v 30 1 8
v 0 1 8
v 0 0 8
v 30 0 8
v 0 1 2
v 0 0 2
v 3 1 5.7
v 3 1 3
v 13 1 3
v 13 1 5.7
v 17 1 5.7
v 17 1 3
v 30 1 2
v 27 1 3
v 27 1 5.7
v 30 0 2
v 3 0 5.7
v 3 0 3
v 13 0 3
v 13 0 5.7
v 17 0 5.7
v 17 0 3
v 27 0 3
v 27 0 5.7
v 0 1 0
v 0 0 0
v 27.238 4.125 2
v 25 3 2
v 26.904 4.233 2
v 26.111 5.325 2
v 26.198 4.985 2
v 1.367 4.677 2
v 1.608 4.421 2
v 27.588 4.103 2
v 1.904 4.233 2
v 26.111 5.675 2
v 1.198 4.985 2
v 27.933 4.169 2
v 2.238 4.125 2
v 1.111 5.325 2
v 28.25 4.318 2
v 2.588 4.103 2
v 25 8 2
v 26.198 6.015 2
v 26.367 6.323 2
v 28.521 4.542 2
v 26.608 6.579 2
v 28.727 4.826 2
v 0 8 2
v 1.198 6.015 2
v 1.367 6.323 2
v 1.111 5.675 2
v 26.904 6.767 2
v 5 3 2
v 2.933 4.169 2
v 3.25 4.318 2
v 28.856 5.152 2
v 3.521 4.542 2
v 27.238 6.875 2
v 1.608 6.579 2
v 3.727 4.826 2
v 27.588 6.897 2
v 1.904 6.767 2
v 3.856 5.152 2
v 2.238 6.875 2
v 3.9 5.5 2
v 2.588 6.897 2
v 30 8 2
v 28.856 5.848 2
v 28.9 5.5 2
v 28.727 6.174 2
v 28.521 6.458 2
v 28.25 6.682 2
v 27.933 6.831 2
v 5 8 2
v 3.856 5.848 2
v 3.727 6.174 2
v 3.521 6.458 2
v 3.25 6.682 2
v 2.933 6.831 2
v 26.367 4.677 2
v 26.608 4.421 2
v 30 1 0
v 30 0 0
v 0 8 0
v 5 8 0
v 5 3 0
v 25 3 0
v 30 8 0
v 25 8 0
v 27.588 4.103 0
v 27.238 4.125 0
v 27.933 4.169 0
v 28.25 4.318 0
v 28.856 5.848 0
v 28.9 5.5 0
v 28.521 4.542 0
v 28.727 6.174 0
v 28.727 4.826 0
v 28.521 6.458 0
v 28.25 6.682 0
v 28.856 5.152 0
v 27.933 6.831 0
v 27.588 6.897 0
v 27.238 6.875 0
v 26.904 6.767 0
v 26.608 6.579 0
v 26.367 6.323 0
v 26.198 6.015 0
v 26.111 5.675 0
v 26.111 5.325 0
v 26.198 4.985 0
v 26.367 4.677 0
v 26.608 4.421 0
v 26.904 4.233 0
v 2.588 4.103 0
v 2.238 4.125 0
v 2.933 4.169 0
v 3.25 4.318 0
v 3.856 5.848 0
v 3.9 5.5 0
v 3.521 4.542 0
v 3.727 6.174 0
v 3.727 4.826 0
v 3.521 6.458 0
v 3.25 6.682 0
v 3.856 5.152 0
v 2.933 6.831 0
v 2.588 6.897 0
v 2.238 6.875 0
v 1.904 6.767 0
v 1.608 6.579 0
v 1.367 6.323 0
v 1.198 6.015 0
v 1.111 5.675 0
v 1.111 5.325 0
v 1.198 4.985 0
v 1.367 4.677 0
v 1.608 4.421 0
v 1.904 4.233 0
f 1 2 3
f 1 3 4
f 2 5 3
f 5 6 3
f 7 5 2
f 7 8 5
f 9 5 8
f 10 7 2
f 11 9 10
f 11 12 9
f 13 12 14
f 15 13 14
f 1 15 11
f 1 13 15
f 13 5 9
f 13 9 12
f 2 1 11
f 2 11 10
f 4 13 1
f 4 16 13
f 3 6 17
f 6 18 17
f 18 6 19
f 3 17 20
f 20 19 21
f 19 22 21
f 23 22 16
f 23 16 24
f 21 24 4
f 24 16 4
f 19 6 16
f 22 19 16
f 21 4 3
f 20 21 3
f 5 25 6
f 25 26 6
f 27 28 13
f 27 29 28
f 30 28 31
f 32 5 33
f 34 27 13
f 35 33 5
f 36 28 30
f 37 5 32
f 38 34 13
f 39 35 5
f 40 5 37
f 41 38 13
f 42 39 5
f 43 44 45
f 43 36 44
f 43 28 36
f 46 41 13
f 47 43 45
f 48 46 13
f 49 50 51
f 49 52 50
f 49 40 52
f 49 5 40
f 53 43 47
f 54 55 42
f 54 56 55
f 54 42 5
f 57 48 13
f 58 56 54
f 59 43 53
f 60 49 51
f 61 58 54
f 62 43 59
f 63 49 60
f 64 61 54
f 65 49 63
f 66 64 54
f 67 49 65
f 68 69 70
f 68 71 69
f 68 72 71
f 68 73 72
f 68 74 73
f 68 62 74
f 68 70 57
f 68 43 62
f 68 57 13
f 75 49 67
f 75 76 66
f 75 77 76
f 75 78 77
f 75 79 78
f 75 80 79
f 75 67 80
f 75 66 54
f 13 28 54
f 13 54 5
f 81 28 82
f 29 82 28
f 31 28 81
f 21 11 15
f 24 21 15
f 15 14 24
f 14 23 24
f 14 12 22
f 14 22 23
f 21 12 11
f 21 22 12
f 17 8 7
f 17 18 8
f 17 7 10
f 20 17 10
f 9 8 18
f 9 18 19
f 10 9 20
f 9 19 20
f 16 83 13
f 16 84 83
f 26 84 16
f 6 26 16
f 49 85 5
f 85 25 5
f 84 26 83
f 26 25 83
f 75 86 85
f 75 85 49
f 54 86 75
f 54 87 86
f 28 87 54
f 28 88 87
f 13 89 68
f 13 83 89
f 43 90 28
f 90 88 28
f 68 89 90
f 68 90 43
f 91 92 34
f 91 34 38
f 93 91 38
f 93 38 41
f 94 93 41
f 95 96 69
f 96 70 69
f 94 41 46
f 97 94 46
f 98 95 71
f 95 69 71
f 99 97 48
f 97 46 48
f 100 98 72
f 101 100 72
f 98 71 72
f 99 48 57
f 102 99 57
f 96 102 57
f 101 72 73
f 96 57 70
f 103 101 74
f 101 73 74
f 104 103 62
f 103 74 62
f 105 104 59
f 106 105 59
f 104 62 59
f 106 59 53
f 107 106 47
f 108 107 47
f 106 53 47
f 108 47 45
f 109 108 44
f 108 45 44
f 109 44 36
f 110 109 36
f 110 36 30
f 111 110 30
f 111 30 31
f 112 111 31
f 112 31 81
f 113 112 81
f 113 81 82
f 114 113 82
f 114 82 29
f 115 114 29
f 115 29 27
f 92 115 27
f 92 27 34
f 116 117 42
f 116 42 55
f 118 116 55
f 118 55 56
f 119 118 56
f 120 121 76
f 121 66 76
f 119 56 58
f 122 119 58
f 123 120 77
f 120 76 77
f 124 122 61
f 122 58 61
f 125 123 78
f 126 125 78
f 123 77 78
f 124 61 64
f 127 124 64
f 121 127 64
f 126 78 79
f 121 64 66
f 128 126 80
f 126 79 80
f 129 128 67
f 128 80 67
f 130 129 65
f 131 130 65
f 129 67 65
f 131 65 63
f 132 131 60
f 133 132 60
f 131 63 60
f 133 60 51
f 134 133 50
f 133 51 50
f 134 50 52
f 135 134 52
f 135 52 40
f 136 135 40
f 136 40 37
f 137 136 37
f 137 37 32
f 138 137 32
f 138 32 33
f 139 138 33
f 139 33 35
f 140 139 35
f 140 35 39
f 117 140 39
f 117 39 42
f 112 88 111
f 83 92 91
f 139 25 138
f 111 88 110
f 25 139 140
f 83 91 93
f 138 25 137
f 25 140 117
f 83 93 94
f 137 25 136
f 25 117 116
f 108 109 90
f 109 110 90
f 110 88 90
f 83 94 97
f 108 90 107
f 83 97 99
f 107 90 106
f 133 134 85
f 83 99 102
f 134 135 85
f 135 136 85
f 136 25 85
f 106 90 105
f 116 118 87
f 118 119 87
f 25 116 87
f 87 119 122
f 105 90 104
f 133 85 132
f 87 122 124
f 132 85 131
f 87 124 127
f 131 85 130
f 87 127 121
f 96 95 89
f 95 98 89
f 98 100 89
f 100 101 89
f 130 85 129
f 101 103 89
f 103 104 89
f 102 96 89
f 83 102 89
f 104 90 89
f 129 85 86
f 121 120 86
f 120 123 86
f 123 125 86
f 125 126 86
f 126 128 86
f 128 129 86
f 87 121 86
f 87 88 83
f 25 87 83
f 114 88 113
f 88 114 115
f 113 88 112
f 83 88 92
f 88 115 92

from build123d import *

# Parameters (mm, degrees)
BOX003_W          = 10
BOX003_H          = 10
BOX003_DEPTH      = 2.7
BOX004_W          = 10
BOX004_H          = 10
BOX004_DEPTH      = 2.7
CYLINDER001_R     = 1.4
CYLINDER001_DEPTH = 10
CYLINDER_R        = 1.4
CYLINDER_DEPTH    = 10
BOX_W             = 30
BOX_H             = 1
BOX_DEPTH         = 8
BOX002_W          = 20
BOX002_H          = 5
BOX002_DEPTH      = 10
BOX001_W          = 30
BOX001_H          = 8
BOX001_DEPTH      = 2


with BuildPart() as w_rfel003:
    # Box003 → Box003 (new body)
    with BuildSketch(Plane(origin=(17, 0, 3), x_dir=(1, 0, 0), z_dir=(0, 0, 1))):
        with Locations((5, 5)):
            Rectangle(BOX003_W, BOX003_H)
    extrude(amount=BOX003_DEPTH)


with BuildPart() as w_rfel004:
    # Box004 → Box004 (new body)
    with BuildSketch(Plane(origin=(3, 0, 3), x_dir=(1, 0, 0), z_dir=(0, 0, 1))):
        with Locations((5, 5)):
            Rectangle(BOX004_W, BOX004_H)
    extrude(amount=BOX004_DEPTH)


with BuildPart() as zylinder001:
    # Cylinder001 → Cylinder001 (new body)
    with BuildSketch(Plane(origin=(27.5, 5.5, 0), x_dir=(1, 0, 0), z_dir=(0, 0, 1))):
        Circle(CYLINDER001_R)
    extrude(amount=CYLINDER001_DEPTH)


with BuildPart() as zylinder:
    # Cylinder → Cylinder (new body)
    with BuildSketch(Plane(origin=(2.5, 5.5, 0), x_dir=(1, 0, 0), z_dir=(0, 0, 1))):
        Circle(CYLINDER_R)
    extrude(amount=CYLINDER_DEPTH)


with BuildPart() as w_rfel:
    # Box → Box (new body)
    with BuildSketch(Plane.XY):
        with Locations((15, 0.5)):
            Rectangle(BOX_W, BOX_H)
    extrude(amount=BOX_DEPTH)


with BuildPart() as w_rfel002:
    # Box002 → Box002 (new body)
    with BuildSketch(Plane(origin=(5, 3, 0), x_dir=(1, 0, 0), z_dir=(0, 0, 1))):
        with Locations((10, 2.5)):
            Rectangle(BOX002_W, BOX002_H)
    extrude(amount=BOX002_DEPTH)


with BuildPart() as cut004:
    # Box001 → Box001 (new body)
    with BuildSketch(Plane.XY):
        with Locations((15, 4)):
            Rectangle(BOX001_W, BOX001_H)
    extrude(amount=BOX001_DEPTH)

    # Cut: cut Würfel002
    add(w_rfel002.part, mode=Mode.SUBTRACT)

    # Fusion: union Würfel
    add(w_rfel.part)

    # Cut001: cut Zylinder
    add(zylinder.part, mode=Mode.SUBTRACT)

    # Cut002: cut Zylinder001
    add(zylinder001.part, mode=Mode.SUBTRACT)

    # Cut003: cut Würfel004
    add(w_rfel004.part, mode=Mode.SUBTRACT)

    # Cut004: cut Würfel003
    add(w_rfel003.part, mode=Mode.SUBTRACT)


solid = cut004.part
